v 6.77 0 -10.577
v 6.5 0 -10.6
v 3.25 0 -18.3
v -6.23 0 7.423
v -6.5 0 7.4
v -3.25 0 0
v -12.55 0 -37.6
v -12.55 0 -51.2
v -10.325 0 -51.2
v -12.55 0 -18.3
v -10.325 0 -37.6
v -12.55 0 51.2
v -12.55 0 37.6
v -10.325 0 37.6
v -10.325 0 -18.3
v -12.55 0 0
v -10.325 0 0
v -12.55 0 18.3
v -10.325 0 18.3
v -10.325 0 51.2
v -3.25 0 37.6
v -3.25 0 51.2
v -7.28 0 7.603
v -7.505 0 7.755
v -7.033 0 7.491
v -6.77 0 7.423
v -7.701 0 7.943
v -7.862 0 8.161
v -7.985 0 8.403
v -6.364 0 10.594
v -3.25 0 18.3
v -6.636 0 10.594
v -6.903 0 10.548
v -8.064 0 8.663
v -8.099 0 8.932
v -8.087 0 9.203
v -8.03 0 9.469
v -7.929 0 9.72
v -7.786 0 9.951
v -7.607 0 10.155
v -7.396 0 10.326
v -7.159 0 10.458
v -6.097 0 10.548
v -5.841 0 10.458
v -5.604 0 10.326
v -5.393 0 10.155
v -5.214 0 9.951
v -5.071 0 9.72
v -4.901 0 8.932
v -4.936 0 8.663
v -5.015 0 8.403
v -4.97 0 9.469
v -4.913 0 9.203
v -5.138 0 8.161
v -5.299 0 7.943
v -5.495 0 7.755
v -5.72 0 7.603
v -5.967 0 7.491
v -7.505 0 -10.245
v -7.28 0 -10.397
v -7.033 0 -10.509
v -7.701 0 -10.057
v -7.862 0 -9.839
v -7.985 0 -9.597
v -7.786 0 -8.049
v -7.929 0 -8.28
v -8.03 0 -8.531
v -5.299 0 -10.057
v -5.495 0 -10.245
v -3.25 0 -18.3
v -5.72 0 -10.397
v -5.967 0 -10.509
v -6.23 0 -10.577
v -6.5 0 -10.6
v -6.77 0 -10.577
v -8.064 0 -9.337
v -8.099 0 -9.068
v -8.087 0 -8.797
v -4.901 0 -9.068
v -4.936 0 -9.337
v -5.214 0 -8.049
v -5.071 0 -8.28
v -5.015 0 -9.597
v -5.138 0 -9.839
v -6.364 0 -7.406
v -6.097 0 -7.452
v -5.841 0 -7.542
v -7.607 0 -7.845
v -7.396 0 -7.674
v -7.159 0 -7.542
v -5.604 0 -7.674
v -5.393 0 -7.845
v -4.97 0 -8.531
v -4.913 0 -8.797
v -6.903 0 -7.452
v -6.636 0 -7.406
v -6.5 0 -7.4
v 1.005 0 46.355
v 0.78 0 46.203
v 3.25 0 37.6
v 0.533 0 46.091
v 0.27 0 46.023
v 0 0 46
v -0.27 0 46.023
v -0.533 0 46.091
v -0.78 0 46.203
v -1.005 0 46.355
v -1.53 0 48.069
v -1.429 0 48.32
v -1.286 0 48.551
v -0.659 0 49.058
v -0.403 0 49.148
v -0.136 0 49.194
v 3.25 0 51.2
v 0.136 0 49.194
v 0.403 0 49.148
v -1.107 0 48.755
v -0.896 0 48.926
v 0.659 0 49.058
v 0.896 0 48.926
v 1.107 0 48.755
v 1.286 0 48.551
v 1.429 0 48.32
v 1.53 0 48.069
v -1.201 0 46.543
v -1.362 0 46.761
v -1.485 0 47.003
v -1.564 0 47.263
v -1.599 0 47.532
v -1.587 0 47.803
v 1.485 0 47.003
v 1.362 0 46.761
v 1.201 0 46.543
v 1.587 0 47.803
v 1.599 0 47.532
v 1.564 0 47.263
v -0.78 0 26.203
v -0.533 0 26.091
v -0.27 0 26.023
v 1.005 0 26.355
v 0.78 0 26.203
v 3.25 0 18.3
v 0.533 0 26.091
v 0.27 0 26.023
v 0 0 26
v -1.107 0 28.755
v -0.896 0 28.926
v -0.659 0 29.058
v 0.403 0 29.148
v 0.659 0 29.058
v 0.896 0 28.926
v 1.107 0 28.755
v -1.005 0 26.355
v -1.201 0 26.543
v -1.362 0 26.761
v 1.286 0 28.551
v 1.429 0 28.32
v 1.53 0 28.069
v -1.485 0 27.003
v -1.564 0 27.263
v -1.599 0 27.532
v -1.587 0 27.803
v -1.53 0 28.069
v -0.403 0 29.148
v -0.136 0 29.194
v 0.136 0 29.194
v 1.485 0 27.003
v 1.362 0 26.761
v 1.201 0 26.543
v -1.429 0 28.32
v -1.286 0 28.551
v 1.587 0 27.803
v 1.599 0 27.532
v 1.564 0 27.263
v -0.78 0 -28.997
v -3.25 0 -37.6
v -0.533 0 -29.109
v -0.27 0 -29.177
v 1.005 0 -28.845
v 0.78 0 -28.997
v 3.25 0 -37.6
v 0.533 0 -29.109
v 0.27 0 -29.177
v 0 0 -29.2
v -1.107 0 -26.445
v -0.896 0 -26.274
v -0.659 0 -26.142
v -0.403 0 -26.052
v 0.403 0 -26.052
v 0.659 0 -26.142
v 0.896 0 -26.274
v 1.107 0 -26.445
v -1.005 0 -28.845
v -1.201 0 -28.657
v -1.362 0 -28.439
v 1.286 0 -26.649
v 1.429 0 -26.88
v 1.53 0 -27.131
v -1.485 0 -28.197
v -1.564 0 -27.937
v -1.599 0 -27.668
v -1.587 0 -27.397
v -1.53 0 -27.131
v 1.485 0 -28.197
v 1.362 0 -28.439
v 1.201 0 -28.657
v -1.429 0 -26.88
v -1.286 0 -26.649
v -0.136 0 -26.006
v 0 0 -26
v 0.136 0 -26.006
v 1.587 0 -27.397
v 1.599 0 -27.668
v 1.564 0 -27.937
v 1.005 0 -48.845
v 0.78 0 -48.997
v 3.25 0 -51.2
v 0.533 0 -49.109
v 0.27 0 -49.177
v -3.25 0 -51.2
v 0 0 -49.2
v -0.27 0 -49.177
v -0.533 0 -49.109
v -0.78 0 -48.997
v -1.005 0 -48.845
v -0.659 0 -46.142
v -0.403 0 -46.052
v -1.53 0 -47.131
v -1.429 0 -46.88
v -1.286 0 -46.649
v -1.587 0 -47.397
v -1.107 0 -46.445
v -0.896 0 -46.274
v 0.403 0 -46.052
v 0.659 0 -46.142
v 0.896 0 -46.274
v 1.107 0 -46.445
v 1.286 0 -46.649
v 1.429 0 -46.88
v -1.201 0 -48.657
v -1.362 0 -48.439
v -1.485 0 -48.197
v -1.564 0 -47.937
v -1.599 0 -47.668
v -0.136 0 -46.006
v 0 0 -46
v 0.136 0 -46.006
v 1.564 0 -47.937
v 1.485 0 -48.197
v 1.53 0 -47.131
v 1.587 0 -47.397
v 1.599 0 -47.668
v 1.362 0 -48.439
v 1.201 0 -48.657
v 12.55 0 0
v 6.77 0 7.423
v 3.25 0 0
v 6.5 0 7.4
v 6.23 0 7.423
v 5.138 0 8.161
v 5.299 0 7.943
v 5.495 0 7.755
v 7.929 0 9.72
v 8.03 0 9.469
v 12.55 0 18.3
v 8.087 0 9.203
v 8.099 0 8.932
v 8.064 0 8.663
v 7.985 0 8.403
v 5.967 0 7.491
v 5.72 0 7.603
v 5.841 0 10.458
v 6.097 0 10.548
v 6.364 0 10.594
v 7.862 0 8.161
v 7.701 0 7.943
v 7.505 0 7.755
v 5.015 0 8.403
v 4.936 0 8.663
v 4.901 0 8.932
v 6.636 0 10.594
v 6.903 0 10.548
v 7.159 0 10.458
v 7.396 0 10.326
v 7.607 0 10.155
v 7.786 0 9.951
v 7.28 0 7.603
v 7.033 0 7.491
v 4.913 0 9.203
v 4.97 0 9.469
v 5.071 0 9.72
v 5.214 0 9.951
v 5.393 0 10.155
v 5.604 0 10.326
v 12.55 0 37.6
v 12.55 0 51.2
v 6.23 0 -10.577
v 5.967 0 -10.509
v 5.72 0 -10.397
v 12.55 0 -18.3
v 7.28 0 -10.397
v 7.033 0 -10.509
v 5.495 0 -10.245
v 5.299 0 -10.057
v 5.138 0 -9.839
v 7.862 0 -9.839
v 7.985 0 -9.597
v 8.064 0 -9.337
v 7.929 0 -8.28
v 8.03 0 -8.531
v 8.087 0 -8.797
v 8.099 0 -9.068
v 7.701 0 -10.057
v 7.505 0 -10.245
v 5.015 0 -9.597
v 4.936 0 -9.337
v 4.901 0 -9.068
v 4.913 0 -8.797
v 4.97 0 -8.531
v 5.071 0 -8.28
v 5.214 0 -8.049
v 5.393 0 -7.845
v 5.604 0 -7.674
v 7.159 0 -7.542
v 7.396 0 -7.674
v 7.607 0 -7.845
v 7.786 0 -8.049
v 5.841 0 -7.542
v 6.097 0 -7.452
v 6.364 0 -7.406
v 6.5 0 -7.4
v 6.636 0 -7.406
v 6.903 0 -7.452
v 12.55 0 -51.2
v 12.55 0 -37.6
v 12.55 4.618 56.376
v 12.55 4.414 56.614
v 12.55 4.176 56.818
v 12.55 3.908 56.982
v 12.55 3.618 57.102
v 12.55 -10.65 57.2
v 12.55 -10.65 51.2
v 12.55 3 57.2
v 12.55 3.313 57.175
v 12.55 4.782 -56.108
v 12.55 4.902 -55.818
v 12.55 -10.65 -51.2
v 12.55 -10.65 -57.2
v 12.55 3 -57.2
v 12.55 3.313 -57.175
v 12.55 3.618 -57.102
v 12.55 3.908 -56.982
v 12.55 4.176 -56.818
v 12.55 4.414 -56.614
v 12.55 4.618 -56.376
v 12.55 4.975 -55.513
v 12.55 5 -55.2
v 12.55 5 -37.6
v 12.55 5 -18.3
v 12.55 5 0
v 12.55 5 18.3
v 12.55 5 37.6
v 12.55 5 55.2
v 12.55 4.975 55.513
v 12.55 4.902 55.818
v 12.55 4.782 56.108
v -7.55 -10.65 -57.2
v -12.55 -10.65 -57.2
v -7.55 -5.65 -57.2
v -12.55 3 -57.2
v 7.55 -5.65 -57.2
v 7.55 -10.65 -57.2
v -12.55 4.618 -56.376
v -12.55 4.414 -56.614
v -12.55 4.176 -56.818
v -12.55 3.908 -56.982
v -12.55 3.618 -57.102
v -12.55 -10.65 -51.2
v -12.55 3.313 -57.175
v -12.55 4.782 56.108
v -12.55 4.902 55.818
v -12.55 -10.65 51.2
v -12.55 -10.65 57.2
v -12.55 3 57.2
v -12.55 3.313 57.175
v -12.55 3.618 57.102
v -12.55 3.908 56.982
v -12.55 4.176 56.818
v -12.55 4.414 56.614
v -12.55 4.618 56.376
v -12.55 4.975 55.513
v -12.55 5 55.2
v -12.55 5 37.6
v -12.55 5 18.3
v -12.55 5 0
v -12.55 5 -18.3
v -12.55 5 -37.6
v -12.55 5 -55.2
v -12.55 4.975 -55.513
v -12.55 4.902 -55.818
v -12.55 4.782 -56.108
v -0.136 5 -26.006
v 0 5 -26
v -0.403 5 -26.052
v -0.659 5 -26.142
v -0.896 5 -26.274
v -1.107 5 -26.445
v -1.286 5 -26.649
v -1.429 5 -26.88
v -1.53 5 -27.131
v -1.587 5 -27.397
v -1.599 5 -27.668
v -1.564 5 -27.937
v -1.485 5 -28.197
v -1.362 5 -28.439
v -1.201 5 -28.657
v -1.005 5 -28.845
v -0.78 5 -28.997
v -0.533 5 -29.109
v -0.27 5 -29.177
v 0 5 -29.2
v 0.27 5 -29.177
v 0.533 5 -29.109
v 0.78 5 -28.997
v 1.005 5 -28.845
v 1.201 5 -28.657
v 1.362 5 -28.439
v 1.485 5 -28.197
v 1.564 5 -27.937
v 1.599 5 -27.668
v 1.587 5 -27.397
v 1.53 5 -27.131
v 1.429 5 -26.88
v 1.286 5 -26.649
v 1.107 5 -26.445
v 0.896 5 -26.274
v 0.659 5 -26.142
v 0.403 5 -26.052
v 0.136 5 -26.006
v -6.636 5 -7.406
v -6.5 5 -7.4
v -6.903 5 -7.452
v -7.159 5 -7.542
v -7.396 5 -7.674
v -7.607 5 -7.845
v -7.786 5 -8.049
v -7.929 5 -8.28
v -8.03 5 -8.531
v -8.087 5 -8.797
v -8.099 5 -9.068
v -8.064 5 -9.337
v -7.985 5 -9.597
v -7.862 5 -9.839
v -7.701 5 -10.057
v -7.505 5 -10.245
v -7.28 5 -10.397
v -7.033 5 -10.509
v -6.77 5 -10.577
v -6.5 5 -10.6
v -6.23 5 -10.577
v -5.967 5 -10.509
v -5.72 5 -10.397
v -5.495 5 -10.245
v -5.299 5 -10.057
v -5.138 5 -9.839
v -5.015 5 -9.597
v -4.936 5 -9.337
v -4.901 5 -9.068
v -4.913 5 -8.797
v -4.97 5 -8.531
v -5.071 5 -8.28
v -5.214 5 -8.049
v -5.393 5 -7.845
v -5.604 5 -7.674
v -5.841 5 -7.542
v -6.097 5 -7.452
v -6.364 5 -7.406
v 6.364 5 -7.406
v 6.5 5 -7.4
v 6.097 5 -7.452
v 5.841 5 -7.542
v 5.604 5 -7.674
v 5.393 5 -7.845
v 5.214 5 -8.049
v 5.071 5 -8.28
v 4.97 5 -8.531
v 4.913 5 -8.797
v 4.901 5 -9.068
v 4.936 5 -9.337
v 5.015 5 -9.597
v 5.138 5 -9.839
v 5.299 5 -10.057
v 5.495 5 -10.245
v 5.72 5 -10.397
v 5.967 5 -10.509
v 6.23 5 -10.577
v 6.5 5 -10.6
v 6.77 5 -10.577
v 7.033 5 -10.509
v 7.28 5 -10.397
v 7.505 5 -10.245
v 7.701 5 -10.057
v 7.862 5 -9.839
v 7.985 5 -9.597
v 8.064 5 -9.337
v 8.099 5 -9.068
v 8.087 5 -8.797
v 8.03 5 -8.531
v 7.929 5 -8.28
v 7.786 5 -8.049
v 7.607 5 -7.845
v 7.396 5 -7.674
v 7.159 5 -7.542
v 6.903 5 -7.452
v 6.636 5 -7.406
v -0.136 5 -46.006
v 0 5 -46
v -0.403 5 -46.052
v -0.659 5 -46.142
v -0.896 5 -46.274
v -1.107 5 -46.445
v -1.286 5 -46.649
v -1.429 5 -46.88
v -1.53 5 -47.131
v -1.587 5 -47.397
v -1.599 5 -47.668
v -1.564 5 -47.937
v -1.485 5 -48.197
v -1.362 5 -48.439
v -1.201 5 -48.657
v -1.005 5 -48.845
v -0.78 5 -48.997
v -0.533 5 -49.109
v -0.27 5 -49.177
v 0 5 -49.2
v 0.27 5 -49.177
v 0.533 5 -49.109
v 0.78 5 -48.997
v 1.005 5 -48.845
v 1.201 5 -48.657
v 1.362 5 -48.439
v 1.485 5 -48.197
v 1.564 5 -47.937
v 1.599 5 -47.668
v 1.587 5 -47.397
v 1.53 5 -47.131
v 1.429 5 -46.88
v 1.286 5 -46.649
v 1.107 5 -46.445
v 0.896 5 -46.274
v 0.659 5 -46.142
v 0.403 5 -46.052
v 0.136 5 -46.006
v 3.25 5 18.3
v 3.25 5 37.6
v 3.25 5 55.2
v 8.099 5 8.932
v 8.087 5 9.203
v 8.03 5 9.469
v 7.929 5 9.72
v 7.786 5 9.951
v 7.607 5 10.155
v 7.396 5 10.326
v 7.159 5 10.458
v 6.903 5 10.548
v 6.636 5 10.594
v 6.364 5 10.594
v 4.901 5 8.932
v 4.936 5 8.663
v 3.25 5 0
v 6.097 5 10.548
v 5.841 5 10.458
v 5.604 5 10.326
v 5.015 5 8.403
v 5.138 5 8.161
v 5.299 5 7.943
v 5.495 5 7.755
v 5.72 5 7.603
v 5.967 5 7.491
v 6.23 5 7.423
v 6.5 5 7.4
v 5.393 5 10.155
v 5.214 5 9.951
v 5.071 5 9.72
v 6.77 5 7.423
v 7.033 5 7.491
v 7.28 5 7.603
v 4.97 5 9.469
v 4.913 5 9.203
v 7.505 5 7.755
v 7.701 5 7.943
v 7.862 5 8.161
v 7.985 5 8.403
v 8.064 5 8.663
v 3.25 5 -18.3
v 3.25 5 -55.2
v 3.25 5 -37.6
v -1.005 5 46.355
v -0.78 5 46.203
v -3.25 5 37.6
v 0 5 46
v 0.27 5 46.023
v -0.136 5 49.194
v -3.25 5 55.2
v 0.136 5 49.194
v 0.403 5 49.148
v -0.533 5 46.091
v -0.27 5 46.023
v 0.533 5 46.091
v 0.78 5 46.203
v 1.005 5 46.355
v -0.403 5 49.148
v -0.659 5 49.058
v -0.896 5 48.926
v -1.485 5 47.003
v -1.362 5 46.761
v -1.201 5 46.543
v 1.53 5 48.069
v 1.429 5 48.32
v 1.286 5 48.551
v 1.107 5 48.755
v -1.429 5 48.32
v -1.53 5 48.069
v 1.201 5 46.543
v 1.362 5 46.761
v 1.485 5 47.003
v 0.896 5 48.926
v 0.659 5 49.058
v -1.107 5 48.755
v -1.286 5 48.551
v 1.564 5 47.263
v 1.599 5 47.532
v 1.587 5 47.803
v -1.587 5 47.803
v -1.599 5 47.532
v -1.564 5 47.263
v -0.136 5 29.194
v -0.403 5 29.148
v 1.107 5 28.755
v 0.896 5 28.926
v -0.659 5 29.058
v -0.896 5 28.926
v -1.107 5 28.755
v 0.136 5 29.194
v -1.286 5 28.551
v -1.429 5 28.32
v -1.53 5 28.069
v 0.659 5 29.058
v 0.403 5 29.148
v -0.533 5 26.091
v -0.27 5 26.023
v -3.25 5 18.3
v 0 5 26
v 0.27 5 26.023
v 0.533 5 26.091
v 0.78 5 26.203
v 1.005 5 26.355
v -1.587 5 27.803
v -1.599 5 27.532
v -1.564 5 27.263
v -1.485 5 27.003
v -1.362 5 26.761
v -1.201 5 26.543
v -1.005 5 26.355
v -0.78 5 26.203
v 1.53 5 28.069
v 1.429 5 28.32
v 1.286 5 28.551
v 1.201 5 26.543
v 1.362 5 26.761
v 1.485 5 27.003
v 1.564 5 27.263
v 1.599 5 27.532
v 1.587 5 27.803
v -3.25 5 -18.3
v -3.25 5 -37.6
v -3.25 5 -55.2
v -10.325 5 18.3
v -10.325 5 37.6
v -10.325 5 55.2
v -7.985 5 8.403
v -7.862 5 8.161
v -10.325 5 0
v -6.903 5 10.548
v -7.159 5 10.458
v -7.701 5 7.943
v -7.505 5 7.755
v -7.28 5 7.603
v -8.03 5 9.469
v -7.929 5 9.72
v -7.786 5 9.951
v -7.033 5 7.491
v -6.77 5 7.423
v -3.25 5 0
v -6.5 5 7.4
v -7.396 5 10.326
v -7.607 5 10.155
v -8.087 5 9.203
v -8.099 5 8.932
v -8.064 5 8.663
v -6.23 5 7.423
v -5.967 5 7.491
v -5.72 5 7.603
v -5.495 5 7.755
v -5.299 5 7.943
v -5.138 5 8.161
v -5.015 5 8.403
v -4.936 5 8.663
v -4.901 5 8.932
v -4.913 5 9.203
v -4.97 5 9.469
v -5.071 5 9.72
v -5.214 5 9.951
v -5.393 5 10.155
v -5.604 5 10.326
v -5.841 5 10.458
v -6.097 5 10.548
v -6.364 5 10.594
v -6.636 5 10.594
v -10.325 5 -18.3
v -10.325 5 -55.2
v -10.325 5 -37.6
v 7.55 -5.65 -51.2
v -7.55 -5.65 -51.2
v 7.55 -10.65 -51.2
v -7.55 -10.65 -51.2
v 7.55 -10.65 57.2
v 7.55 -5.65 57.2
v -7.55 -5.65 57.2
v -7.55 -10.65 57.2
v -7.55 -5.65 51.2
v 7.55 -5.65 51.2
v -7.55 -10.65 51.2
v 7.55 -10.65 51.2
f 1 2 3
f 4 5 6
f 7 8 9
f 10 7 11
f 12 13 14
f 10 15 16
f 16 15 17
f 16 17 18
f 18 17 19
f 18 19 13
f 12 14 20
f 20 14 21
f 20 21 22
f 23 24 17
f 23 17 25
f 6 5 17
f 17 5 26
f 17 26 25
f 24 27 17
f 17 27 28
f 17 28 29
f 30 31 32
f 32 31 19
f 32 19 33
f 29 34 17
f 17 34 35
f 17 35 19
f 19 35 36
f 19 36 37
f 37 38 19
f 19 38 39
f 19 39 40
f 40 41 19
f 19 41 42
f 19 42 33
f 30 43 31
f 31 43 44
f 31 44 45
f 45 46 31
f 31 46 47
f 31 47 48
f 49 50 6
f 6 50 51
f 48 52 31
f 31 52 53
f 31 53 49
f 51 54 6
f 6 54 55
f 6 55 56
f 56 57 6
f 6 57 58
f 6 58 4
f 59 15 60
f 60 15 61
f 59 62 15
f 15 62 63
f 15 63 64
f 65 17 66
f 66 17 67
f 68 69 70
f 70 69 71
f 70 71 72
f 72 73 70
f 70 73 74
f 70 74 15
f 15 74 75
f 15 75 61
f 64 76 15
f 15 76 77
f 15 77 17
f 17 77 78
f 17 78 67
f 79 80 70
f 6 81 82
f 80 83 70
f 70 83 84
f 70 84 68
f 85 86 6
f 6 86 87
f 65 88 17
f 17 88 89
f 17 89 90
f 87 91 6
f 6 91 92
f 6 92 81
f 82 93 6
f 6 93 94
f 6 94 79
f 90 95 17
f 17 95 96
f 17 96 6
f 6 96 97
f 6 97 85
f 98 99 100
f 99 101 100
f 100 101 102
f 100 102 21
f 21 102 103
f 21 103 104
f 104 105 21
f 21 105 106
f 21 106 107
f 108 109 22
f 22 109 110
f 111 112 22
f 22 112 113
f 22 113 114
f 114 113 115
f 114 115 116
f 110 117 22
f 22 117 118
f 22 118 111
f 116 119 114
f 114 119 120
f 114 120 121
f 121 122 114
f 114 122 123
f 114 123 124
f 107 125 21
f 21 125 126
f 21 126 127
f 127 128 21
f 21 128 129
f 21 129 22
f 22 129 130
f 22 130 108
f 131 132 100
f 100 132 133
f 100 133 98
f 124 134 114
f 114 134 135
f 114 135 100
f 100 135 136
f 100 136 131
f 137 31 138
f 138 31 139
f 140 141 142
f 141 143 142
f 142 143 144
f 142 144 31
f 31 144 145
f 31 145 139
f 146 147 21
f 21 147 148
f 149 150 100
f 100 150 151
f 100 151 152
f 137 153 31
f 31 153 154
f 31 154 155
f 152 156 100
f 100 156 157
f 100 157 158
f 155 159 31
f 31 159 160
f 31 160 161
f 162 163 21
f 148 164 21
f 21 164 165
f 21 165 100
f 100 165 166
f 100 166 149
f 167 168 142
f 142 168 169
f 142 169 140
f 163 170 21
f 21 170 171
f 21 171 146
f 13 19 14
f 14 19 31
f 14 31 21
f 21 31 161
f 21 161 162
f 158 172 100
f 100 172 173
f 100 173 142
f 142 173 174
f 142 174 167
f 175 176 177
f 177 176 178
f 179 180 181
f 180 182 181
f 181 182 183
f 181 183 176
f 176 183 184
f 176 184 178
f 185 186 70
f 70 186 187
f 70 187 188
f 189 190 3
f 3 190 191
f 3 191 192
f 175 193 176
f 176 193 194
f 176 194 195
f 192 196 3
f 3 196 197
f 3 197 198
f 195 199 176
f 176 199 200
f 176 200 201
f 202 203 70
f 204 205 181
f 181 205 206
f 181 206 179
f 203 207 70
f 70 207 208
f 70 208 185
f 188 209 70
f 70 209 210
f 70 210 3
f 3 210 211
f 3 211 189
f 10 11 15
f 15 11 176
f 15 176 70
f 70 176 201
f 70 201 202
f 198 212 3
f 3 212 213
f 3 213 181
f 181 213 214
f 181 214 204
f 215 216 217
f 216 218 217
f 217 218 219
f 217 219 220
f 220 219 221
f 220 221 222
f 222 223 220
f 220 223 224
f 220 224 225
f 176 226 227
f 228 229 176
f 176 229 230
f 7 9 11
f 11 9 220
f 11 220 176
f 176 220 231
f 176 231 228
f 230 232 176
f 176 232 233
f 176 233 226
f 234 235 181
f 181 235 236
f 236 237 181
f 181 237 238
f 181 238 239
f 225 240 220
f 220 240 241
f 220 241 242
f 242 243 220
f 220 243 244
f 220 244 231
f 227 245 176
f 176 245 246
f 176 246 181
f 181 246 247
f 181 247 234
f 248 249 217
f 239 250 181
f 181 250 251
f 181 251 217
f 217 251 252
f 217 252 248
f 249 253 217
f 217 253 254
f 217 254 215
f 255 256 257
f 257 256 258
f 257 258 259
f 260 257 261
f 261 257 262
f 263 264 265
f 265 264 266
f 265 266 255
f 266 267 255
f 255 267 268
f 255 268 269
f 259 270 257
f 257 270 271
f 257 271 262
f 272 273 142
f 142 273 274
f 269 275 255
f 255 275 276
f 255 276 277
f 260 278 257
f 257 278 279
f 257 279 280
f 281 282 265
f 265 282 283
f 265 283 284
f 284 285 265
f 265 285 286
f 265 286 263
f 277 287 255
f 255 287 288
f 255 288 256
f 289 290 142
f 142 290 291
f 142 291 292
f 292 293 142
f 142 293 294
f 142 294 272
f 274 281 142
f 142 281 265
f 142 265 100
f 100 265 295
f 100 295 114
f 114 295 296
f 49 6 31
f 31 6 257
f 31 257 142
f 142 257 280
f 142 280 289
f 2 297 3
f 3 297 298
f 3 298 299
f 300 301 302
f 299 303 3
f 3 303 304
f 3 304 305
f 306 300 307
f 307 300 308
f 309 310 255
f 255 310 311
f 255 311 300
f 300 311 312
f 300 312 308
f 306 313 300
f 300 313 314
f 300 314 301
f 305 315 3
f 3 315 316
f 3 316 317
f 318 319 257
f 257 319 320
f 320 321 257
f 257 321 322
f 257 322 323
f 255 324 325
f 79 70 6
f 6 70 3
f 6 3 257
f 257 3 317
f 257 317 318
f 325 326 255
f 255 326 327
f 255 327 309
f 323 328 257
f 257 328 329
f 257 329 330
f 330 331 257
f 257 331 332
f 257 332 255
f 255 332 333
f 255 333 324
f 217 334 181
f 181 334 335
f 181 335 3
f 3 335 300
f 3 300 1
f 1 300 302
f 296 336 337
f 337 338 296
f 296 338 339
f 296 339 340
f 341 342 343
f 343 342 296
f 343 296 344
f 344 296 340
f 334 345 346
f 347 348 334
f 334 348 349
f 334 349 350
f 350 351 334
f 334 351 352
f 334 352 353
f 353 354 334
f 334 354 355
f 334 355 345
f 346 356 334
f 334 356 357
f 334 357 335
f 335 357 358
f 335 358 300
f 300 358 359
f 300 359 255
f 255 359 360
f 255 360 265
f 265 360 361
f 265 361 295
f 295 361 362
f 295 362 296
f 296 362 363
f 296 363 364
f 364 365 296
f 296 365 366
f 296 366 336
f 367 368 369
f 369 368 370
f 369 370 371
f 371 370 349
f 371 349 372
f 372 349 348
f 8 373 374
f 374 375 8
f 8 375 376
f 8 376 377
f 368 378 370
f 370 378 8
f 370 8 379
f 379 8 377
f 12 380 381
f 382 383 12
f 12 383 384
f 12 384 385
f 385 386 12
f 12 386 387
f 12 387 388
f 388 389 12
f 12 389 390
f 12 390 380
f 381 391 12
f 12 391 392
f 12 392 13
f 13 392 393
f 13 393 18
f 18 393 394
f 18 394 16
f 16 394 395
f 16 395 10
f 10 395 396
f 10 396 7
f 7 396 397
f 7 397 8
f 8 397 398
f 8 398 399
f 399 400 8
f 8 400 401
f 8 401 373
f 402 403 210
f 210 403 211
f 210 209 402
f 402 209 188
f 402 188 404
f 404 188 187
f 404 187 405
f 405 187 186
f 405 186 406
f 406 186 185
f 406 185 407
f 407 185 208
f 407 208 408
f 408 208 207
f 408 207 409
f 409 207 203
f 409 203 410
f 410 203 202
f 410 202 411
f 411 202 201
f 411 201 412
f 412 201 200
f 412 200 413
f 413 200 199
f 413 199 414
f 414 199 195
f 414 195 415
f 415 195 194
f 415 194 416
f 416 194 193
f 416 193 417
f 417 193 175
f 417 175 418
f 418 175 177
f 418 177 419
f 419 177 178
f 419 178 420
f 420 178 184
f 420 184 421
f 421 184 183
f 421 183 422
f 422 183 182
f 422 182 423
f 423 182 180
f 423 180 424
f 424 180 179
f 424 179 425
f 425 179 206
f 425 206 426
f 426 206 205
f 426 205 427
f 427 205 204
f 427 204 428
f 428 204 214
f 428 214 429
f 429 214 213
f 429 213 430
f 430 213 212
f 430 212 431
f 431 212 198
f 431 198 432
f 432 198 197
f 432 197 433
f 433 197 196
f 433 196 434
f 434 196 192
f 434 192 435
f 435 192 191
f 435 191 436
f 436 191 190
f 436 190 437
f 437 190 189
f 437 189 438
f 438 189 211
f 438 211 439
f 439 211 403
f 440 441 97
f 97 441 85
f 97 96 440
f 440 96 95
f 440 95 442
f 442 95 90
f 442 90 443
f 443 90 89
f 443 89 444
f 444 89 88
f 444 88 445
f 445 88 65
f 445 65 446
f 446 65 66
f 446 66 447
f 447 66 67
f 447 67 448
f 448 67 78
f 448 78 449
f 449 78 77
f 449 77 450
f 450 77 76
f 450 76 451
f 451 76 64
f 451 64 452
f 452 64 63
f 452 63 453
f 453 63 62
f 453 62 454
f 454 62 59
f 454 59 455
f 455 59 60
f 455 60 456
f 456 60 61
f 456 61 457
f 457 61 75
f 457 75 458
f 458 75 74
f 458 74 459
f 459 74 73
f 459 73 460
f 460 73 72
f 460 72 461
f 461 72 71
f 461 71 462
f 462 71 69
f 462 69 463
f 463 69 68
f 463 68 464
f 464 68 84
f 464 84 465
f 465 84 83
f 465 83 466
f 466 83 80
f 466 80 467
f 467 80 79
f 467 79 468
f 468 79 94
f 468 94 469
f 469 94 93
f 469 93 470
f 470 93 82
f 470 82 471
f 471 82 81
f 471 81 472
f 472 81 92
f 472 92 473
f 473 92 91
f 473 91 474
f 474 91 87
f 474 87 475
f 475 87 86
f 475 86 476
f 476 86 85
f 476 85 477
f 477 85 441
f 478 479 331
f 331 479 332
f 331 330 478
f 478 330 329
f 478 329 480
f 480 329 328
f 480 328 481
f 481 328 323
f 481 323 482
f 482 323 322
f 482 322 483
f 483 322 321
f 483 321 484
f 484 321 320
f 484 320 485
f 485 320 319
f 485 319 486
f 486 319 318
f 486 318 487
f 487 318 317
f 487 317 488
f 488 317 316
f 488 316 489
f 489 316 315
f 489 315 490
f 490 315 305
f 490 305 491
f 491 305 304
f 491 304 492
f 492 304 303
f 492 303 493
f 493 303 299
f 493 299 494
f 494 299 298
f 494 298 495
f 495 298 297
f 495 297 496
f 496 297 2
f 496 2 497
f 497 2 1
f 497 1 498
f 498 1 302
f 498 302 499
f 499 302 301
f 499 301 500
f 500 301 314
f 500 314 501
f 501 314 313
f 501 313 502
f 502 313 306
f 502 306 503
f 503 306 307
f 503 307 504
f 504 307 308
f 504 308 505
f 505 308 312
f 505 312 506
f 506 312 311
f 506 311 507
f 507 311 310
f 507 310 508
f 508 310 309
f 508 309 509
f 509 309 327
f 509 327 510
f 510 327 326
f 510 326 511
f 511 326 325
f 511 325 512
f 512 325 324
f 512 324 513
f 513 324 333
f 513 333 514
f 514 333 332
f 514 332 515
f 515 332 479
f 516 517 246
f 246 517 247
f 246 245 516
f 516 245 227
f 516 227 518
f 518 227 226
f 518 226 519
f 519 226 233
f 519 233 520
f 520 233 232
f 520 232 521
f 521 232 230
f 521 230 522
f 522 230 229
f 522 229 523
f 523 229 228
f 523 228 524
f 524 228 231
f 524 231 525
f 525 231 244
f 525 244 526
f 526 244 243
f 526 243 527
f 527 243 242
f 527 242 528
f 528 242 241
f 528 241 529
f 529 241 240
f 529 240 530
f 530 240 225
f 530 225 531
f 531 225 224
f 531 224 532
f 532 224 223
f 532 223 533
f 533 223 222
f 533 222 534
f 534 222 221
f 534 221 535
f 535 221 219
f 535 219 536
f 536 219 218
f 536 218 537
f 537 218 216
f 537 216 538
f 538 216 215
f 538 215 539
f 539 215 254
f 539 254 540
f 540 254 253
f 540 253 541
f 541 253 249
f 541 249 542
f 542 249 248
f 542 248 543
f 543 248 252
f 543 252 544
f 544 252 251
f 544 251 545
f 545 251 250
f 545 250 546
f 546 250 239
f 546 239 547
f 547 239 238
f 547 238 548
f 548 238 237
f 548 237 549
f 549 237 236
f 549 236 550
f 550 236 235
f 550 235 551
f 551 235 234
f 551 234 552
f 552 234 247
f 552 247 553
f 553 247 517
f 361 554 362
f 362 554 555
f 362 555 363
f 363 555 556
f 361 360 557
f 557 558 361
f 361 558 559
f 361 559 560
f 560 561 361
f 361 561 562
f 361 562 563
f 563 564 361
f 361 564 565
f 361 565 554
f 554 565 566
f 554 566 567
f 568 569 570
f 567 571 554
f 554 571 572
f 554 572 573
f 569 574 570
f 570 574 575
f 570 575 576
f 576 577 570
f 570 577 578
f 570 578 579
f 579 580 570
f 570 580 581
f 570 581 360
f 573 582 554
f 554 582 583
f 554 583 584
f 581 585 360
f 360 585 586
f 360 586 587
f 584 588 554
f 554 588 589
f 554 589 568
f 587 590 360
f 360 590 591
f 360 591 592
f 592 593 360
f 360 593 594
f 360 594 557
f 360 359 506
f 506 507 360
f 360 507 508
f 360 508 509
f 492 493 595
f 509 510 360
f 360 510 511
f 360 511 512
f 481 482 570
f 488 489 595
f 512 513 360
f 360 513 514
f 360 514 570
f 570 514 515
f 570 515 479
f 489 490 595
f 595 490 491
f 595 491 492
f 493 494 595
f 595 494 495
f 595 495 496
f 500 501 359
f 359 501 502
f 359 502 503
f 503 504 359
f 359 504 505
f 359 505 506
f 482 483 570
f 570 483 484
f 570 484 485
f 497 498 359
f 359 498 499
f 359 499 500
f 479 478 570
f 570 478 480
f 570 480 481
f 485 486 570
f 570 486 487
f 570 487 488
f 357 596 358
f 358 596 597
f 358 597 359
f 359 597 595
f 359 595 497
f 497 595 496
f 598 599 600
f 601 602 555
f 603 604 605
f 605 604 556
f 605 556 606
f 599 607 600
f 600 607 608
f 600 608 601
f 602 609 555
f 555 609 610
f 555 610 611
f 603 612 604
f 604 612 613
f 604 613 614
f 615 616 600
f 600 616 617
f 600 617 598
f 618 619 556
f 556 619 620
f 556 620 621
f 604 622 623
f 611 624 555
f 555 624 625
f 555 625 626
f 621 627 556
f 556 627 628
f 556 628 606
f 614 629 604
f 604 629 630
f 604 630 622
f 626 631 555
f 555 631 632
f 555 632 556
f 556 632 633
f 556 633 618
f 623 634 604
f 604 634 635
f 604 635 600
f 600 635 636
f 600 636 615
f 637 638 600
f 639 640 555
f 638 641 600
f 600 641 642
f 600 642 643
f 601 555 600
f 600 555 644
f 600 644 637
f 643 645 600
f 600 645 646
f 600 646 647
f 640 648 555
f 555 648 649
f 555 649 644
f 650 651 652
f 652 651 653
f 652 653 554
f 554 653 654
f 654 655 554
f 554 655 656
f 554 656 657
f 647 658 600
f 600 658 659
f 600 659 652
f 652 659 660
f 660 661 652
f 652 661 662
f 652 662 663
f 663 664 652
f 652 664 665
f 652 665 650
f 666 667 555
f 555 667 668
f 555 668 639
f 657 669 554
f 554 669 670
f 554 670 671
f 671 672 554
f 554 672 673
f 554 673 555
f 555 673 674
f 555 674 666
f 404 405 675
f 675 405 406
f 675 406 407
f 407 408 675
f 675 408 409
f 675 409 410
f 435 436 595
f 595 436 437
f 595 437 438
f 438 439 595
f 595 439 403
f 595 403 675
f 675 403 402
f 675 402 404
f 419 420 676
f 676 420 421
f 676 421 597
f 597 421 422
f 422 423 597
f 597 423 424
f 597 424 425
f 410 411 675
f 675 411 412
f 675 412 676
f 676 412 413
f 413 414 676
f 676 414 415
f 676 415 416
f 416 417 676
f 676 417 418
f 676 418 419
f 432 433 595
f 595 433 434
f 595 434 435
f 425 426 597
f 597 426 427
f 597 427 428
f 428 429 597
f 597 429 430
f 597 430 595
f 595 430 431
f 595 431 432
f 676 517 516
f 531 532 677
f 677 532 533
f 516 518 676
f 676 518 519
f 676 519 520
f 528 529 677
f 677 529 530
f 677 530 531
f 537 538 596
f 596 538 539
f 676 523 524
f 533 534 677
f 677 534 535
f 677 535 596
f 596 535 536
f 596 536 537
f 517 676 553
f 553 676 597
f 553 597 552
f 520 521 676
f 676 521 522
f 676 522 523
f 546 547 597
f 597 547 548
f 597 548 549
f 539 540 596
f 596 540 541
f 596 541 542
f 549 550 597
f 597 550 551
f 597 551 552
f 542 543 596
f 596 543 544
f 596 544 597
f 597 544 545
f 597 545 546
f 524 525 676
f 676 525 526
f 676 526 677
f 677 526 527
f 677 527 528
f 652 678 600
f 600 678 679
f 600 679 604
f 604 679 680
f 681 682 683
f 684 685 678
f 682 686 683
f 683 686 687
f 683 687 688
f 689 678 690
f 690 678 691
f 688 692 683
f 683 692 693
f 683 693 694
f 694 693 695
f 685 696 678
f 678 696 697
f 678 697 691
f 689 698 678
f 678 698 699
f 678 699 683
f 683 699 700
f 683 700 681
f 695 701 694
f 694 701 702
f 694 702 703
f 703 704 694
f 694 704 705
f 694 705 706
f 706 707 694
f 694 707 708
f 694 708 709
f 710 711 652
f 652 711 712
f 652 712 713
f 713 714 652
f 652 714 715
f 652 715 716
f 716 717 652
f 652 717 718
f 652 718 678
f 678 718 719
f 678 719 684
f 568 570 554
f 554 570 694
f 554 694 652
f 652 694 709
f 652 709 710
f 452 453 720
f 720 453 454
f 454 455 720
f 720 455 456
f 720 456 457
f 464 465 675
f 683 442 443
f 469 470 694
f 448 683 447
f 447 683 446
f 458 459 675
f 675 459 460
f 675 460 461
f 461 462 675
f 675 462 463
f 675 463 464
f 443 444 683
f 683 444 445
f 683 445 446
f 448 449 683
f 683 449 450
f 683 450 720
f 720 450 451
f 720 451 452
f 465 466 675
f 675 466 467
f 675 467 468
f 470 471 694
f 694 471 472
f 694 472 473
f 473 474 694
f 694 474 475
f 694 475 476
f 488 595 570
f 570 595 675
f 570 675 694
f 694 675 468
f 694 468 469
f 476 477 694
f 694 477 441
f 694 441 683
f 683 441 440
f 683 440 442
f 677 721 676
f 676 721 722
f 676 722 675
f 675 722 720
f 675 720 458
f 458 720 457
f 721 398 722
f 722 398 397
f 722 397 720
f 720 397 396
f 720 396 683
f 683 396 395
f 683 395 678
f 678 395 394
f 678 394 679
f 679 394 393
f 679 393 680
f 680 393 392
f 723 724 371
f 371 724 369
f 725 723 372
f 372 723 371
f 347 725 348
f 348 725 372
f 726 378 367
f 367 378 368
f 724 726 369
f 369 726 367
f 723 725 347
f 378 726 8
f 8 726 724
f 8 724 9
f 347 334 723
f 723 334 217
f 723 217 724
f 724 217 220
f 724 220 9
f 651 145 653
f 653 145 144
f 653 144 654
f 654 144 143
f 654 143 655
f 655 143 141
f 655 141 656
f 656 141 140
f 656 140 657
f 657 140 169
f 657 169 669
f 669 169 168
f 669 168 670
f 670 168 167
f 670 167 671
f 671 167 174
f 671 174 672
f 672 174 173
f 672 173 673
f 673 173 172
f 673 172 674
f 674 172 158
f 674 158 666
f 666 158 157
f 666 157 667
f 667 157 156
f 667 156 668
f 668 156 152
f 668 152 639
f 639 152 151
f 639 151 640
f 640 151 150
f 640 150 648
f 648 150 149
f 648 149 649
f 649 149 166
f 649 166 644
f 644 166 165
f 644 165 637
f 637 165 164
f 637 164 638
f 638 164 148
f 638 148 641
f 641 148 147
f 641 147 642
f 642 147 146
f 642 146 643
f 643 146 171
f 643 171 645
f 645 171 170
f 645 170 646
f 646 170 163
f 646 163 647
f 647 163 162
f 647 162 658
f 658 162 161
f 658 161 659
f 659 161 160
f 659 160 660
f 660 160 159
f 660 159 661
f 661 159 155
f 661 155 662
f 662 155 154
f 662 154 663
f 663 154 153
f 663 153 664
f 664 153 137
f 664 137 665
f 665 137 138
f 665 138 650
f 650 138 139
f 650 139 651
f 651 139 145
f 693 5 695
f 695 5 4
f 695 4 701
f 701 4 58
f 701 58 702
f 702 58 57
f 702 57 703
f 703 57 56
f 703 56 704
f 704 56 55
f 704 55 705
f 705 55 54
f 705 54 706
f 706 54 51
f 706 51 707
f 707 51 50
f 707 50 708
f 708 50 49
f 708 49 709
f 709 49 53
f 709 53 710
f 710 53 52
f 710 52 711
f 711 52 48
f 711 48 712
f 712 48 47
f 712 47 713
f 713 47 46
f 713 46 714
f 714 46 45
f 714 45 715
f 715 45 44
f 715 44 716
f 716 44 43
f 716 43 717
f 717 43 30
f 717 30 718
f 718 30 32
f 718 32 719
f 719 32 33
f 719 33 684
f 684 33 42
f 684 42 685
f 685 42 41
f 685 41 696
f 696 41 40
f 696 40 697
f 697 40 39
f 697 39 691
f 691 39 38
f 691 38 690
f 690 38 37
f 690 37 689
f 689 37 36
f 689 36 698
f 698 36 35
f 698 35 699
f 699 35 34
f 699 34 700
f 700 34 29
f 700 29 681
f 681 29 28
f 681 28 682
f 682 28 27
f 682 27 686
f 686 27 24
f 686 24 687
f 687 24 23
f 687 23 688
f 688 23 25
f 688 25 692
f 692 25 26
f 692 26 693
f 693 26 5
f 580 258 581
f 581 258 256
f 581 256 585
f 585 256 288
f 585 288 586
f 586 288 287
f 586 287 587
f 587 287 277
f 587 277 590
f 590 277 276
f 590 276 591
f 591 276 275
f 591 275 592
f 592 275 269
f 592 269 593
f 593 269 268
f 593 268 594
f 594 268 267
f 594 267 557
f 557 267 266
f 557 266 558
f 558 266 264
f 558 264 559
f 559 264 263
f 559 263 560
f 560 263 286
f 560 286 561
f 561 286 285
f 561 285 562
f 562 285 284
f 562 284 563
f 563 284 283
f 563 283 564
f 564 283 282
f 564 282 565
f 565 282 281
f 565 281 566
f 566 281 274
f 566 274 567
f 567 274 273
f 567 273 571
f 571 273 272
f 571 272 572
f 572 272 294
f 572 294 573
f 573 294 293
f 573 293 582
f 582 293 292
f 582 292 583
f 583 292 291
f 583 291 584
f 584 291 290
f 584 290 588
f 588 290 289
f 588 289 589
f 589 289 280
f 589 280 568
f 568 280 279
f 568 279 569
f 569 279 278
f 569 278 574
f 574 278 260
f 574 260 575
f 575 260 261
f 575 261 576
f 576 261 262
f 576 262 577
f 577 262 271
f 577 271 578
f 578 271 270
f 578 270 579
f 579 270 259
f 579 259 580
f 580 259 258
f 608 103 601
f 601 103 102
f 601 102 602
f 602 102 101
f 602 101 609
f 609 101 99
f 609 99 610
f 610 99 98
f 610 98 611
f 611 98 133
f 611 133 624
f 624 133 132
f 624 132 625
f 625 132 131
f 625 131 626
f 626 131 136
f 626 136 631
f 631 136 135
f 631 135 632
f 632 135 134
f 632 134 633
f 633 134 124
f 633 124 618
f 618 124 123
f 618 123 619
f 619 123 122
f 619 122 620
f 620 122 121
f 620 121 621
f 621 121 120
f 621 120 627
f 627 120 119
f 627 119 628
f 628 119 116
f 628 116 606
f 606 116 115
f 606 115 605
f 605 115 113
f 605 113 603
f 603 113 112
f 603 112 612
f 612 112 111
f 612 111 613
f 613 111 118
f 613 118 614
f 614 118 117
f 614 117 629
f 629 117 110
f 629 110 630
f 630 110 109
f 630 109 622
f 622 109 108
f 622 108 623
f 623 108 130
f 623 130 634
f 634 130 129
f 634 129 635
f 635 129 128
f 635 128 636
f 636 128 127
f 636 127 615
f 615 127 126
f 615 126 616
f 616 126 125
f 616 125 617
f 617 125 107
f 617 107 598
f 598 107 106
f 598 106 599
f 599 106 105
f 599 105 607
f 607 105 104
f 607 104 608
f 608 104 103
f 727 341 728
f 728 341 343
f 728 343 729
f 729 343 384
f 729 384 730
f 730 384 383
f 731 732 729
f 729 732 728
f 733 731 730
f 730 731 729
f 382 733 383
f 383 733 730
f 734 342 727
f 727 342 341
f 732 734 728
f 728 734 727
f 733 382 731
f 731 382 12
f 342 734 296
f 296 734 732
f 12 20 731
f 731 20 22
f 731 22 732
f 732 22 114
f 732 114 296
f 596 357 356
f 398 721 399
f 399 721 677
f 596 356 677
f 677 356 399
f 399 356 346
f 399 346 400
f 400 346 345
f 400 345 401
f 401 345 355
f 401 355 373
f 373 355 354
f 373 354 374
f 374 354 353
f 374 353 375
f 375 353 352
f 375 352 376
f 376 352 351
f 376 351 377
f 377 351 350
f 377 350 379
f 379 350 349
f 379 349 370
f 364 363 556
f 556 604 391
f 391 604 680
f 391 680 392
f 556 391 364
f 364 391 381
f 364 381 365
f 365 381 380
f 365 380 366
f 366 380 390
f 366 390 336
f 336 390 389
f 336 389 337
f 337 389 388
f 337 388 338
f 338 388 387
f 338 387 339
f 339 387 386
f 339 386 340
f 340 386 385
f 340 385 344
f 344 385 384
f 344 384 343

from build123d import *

# Parameters (mm, degrees)
SKETCH2_W           = 25.1
SKETCH2_H           = 57.2
SKETCH2_R           = 1.6
BOSS_EXTRUDE1_DEPTH = 5
BOSS_EXTRUDE2_DEPTH = 6
FILLET1_R           = 2


with BuildPart() as part:
    # Sketch2 → Boss-Extrude1 (new body)
    with BuildSketch(Plane(origin=(0, 0, 0), x_dir=(1, 0, 0), z_dir=(0, 1, 0))):
        with Locations((0, 28.6)):
            Rectangle(SKETCH2_W, SKETCH2_H)
        with Locations((0, 27.6)):
            Circle(SKETCH2_R, mode=Mode.SUBTRACT)
        with Locations((-6.5, 9)):
            Circle(SKETCH2_R, mode=Mode.SUBTRACT)
        with Locations((6.5, 9)):
            Circle(SKETCH2_R, mode=Mode.SUBTRACT)
        with Locations((0, 47.6)):
            Circle(SKETCH2_R, mode=Mode.SUBTRACT)
    boss_extrude1 = extrude(amount=BOSS_EXTRUDE1_DEPTH)

    # Sketch4 → Boss-Extrude2 (add)
    with BuildSketch(Plane(origin=(0, 0, -57.2), x_dir=(-1, 0, 0), z_dir=(0, 0, -1))):
        Polygon((12.55, 0), (-12.55, 0), (-12.55, -10.65), (-7.55, -10.65), (-7.55, -5.65), (7.55, -5.65), (7.55, -10.65), (12.55, -10.65), align=None)
    boss_extrude2 = extrude(amount=-BOSS_EXTRUDE2_DEPTH)

    # Mirror1: Boss-Extrude1, Boss-Extrude2 across plane
    add(boss_extrude1.mirror(Plane.XY))
    add(boss_extrude2.mirror(Plane.XY))

    # Fillet1
    fillet1_edges = [part.edges().sort_by_distance(p)[0] for p in [
        (0, 5, -57.2),
        (0, 5, 57.2),
    ]]
    fillet(fillet1_edges, radius=FILLET1_R)


solid = part.part
